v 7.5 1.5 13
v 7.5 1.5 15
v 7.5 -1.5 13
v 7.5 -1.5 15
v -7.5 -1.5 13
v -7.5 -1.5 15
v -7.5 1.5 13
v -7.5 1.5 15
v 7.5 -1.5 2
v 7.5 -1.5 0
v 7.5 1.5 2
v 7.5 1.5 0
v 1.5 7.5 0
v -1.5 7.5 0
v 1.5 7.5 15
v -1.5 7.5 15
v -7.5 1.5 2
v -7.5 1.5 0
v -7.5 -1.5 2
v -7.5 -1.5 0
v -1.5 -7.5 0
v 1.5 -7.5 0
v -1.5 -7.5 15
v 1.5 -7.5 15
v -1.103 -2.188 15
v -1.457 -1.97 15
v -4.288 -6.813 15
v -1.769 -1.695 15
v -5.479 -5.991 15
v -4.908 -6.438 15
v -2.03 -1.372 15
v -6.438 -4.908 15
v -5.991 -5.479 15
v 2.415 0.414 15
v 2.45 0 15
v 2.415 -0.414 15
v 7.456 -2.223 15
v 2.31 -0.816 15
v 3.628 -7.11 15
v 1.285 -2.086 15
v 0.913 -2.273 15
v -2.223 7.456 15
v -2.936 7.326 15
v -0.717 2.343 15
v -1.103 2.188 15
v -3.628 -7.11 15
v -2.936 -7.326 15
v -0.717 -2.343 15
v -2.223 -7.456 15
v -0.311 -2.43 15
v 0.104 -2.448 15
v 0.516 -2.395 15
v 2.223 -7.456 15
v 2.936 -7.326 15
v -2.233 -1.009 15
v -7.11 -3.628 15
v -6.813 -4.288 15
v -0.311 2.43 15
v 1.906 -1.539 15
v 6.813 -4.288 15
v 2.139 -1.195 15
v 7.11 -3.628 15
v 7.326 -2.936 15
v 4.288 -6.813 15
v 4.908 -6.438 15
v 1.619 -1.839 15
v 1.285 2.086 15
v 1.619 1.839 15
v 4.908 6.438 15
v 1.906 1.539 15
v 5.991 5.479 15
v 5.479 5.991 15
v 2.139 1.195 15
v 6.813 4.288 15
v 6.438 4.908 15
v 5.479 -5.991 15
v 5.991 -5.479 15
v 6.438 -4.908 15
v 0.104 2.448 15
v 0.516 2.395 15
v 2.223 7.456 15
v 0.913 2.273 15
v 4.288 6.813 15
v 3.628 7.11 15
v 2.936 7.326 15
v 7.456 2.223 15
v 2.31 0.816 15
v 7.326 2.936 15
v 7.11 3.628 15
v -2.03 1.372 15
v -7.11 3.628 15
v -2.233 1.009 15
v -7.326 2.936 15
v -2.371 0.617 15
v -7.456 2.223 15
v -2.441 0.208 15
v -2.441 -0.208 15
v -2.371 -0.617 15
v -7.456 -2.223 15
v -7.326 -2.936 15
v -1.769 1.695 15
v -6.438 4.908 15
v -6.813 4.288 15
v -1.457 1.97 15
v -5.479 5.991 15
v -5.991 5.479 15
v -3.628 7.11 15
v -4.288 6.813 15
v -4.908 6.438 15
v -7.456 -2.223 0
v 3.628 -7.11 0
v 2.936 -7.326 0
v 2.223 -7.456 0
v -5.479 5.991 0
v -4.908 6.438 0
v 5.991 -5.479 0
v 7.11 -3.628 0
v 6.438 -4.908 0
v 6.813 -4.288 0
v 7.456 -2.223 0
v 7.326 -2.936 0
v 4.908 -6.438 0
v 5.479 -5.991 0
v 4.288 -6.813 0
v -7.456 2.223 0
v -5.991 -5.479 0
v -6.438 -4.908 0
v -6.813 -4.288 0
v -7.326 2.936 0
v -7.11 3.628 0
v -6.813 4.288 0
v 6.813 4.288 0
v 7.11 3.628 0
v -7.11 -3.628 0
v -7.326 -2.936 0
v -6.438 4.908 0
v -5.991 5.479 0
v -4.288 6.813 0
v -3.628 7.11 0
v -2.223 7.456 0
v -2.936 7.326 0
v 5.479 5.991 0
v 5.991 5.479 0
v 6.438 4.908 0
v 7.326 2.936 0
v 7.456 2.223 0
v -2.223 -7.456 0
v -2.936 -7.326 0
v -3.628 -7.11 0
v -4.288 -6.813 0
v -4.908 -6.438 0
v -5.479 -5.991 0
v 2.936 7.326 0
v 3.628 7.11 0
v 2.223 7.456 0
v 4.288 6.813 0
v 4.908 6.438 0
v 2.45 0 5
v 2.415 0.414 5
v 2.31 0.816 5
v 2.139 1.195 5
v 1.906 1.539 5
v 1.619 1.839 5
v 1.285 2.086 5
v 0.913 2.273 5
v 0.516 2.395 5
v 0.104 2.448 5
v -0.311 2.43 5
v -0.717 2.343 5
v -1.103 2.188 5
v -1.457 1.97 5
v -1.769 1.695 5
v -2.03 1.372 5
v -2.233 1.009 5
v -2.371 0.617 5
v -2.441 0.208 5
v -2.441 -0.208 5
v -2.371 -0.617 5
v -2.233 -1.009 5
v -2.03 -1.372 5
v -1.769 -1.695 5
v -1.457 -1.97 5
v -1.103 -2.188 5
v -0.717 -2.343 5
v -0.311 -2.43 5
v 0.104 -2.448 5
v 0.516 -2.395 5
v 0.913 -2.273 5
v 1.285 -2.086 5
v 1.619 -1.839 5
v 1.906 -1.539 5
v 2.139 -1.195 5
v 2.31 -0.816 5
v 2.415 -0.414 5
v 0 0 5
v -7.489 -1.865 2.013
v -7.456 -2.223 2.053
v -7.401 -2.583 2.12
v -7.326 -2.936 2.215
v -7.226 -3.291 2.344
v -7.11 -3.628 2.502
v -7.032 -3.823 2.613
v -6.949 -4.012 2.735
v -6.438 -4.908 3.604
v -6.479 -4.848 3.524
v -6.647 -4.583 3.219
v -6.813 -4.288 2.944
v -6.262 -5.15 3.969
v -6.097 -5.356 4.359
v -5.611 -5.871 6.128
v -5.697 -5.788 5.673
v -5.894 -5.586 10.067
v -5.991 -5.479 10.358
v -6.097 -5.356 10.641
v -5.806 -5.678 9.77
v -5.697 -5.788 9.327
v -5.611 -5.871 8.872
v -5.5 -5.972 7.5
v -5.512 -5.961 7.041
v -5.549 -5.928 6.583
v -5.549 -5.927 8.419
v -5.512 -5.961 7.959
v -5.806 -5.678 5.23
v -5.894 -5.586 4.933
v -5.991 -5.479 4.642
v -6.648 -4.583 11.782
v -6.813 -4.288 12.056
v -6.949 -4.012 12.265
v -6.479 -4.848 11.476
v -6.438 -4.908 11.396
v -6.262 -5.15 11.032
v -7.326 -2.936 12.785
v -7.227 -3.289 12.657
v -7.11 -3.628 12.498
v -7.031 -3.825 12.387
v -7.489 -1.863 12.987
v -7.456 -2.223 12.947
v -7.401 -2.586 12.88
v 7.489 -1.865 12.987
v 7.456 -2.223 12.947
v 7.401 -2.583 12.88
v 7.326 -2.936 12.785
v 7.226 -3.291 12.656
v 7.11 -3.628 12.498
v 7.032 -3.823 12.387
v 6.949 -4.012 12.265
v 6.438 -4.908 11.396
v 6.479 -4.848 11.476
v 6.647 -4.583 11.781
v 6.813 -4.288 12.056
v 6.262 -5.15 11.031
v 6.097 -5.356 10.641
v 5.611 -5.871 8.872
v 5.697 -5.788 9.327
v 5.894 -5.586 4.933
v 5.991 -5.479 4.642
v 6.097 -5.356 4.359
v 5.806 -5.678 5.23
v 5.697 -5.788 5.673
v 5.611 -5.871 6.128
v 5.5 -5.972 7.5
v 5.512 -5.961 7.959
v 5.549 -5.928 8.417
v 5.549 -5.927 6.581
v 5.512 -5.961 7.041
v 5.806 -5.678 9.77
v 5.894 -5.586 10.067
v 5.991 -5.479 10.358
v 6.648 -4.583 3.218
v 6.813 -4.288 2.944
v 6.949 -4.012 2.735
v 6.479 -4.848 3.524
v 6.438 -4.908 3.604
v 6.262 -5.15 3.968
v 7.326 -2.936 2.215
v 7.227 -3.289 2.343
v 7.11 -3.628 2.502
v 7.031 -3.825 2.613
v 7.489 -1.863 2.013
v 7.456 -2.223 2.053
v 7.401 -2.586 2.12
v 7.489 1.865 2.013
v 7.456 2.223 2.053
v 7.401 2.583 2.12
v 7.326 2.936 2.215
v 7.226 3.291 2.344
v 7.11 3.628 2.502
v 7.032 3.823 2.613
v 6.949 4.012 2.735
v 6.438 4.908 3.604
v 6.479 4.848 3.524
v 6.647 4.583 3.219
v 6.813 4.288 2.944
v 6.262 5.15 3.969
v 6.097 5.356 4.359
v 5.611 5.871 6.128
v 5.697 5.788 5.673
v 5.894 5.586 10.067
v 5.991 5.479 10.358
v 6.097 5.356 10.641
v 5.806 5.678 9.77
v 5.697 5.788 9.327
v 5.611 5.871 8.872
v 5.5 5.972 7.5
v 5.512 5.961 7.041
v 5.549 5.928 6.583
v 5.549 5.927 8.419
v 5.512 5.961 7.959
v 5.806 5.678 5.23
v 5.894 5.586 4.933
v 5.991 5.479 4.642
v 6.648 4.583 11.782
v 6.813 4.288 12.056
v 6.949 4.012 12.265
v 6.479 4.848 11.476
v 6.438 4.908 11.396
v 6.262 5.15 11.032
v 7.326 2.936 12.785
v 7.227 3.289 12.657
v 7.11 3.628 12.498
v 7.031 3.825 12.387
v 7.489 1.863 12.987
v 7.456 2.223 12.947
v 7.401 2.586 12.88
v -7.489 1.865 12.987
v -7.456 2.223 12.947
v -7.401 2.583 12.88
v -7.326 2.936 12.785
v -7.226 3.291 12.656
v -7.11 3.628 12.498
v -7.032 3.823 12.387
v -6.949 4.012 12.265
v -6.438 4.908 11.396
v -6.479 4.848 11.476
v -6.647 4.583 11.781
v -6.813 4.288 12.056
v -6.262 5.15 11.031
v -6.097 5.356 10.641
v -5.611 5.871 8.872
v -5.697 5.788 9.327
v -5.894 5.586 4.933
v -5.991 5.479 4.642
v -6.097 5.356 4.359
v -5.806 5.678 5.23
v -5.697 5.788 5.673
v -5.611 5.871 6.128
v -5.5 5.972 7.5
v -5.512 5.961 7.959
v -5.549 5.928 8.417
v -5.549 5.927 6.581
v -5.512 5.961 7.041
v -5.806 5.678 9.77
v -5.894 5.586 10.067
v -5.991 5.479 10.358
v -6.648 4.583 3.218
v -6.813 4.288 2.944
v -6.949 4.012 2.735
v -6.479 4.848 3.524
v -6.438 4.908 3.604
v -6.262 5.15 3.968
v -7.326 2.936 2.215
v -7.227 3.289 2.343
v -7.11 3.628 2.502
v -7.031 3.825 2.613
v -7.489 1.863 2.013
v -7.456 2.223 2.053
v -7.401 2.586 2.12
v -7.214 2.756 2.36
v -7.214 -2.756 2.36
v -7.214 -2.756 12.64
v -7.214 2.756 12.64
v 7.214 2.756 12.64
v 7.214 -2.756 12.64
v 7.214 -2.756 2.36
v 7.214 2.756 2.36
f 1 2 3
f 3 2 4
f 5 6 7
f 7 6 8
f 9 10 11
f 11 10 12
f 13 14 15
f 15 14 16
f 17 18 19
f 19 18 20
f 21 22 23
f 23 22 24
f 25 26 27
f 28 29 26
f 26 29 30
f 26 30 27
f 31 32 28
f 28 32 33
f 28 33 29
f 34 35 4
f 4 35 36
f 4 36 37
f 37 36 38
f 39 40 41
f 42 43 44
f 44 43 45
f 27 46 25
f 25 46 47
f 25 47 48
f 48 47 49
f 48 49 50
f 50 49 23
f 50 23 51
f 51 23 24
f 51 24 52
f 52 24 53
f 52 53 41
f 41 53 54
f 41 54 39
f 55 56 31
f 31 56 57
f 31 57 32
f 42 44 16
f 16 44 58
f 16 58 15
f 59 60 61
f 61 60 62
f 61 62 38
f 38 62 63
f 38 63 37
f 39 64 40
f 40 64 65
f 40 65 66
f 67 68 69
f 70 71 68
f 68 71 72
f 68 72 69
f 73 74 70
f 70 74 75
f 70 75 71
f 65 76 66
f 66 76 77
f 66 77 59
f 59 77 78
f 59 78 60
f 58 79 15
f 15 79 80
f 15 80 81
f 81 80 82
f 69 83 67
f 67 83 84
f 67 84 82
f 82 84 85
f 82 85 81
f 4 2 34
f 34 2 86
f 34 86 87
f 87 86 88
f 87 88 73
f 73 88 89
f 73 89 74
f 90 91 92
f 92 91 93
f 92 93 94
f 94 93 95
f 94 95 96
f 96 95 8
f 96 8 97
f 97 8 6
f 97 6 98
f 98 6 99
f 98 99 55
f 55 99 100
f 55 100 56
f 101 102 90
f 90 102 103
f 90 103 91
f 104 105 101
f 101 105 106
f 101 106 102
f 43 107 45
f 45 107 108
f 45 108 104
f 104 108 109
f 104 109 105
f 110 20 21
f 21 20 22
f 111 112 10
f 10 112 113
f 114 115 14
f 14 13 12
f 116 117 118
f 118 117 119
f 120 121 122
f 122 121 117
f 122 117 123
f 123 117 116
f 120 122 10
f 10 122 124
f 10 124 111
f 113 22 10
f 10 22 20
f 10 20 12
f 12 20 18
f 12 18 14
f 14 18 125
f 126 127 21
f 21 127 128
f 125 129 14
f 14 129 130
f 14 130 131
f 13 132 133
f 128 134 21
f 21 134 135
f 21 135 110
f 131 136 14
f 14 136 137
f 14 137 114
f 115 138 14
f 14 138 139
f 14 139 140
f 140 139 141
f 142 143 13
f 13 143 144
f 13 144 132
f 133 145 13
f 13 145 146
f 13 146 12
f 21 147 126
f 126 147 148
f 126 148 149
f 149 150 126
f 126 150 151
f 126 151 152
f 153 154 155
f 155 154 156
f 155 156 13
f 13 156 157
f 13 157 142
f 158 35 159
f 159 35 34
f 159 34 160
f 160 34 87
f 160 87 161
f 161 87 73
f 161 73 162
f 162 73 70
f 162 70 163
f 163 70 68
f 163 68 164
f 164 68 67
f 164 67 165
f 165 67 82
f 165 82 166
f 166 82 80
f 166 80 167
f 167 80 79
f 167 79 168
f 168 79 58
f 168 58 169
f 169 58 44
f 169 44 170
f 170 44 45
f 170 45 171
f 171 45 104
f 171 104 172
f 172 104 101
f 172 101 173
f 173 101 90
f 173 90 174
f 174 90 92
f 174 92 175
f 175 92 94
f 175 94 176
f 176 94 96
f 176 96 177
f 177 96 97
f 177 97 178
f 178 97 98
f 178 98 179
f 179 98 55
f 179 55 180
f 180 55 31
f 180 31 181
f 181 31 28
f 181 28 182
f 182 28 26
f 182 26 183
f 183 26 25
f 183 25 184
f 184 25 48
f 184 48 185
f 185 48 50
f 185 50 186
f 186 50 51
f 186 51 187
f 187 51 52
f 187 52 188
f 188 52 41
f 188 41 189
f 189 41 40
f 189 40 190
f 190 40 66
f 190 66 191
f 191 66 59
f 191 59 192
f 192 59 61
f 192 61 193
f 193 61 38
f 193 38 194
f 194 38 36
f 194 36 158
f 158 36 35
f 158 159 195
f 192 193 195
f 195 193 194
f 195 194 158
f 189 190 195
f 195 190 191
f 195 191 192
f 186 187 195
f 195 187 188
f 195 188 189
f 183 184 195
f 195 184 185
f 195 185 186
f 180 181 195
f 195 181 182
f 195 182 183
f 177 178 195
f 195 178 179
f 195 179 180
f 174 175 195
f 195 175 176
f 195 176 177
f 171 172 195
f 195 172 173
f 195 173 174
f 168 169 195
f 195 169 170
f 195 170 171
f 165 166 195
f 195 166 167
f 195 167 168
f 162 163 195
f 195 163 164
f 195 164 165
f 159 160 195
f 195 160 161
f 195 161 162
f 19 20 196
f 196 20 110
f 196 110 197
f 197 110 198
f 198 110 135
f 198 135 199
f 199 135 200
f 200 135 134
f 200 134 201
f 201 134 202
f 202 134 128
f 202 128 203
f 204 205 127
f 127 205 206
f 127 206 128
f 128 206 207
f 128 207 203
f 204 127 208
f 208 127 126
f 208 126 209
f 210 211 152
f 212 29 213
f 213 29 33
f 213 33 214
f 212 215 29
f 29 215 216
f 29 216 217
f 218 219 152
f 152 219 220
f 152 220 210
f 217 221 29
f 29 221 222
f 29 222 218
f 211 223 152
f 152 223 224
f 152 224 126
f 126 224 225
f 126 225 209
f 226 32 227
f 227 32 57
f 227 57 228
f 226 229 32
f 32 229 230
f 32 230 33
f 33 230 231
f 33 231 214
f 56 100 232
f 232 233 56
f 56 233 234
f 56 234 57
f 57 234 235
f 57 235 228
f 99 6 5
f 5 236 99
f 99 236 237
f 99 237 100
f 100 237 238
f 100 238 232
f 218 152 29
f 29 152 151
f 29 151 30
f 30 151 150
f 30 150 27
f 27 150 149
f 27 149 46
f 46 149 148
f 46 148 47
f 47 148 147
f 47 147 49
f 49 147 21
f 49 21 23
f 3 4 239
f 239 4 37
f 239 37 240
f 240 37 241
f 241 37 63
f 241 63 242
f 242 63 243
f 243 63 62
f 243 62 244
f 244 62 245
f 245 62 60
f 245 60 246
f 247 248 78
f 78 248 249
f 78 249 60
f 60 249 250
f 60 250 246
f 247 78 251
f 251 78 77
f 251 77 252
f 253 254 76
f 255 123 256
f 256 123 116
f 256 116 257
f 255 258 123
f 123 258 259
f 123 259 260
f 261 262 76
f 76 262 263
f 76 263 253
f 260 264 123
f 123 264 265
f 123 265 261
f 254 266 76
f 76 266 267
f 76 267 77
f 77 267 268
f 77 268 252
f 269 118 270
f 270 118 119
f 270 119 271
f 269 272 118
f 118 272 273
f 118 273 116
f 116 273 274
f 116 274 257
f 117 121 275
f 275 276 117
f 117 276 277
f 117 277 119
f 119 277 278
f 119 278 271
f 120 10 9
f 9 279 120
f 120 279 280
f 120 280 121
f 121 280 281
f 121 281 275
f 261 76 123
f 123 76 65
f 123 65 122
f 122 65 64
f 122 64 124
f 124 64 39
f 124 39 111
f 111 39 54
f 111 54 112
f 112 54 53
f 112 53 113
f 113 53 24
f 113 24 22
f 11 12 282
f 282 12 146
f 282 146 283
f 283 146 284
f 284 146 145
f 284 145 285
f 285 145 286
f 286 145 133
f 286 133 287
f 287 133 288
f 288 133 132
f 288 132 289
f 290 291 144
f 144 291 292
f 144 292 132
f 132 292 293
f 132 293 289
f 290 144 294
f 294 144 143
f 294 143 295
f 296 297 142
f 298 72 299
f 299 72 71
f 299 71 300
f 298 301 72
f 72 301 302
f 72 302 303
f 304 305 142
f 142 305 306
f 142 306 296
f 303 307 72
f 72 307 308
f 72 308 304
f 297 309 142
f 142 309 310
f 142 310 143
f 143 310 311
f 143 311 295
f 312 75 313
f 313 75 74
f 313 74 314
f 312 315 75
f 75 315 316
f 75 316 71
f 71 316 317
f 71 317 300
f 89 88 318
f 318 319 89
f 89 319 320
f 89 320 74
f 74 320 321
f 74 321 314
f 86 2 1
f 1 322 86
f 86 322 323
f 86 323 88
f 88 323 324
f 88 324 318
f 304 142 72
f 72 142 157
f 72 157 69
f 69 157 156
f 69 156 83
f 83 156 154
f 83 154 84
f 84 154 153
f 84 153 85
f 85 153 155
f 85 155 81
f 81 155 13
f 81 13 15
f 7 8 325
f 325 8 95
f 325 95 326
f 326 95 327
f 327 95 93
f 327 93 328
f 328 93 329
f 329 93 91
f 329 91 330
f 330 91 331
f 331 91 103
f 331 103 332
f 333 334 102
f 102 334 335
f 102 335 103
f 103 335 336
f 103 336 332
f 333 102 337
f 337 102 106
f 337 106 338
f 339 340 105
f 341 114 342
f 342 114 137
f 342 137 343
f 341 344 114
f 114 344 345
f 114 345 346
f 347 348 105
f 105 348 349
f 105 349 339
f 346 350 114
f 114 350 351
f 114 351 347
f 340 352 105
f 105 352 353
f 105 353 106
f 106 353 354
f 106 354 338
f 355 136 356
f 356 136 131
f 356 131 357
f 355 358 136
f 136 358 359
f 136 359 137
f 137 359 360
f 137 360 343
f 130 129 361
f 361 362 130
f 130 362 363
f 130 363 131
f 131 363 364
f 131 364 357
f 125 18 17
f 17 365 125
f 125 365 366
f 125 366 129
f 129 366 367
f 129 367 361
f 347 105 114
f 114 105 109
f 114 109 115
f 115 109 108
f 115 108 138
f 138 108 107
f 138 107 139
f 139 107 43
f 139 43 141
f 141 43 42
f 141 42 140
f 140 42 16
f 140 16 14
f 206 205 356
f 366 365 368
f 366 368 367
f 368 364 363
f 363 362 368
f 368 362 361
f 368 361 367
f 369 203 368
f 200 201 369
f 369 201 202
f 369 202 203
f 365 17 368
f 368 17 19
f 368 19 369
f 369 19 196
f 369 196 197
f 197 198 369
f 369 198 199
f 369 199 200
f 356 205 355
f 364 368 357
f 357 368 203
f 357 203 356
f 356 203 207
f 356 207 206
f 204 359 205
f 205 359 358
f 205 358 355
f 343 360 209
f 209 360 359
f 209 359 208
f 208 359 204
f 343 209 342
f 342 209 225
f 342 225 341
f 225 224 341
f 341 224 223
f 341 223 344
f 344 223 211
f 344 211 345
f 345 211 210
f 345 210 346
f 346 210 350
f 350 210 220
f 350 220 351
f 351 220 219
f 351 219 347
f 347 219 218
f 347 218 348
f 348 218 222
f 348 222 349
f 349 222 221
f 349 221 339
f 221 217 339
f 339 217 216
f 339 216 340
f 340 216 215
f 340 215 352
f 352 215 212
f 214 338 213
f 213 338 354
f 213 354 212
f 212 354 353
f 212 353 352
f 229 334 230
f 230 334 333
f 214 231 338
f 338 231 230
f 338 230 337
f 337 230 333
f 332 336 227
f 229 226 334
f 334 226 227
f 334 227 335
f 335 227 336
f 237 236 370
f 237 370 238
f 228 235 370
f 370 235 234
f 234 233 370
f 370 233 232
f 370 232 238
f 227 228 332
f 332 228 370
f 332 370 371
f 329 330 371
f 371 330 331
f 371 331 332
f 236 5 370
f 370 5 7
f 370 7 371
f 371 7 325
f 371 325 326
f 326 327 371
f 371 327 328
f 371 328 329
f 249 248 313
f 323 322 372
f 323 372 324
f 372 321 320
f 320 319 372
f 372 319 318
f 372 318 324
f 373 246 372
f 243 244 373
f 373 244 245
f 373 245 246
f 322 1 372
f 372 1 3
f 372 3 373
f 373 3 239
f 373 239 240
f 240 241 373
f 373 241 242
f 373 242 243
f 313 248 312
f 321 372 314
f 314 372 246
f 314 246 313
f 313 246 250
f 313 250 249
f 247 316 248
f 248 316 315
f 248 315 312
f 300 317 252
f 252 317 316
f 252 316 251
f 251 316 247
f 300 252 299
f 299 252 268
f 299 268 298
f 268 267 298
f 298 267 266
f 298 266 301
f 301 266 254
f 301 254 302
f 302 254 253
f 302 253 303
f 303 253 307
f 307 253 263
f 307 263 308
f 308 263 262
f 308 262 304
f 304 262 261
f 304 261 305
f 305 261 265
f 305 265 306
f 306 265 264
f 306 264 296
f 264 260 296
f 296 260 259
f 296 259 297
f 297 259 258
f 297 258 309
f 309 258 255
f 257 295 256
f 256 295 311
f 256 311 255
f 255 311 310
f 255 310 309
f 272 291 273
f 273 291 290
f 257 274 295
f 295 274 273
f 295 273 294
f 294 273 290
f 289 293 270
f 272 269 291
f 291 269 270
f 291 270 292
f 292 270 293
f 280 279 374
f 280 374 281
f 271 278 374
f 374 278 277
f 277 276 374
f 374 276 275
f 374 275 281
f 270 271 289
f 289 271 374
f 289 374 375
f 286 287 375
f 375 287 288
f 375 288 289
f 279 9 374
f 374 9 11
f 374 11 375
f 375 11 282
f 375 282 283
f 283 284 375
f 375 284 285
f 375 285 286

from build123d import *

# Parameters (mm, degrees)
BASE_SKETCH_W      = 15
BASE_SKETCH_H      = 15
BASE_DEPTH         = 15
NUT_HOLE_SKETCH_R  = 2.45
NUT_HOLE_DEPTH     = 10
ROUNDING_R         = 6
THUMB_HOLE_DEPTH   = 23.5
KRUHOV_POLE1_COUNT = 2


with BuildPart() as part:
    # Base sketch → Base (new body)
    with BuildSketch(Plane.XY):
        Rectangle(BASE_SKETCH_W, BASE_SKETCH_H)
    extrude(amount=BASE_DEPTH)

    # Nut hole sketch → Nut hole (cut)
    with BuildSketch(Plane.XY.offset(15)):
        Circle(NUT_HOLE_SKETCH_R)
    extrude(amount=-NUT_HOLE_DEPTH, mode=Mode.SUBTRACT)

    # Rounding
    rounding_edges = [part.edges().sort_by_distance(p)[0] for p in [
        (7.5, -7.5, 7.5),
        (-7.5, -7.5, 7.5),
        (-7.5, 7.5, 7.5),
        (7.5, 7.5, 7.5),
    ]]
    fillet(rounding_edges, radius=ROUNDING_R)

    # Thumb hole sketch → Thumb hole (cut, through all)
    with BuildSketch(Plane.XZ.offset(7.5)):
        with BuildLine():
            Line((-7.5, 13), (-7.5, 2))
            ThreePointArc((-7.5, 2), (-5.5, 7.5), (-7.5, 13))
        make_face()
    thumb_hole = extrude(amount=-THUMB_HOLE_DEPTH, mode=Mode.SUBTRACT)

    # Kruhové pole1: Thumb hole ×2 about axis
    kruhov_pole1_axis = Axis((0, 0, 7.5), (0, 1, 0))
    for i in range(1, KRUHOV_POLE1_COUNT):
        add(thumb_hole.rotate(kruhov_pole1_axis, i * 360 / KRUHOV_POLE1_COUNT), mode=Mode.SUBTRACT)


solid = part.part
